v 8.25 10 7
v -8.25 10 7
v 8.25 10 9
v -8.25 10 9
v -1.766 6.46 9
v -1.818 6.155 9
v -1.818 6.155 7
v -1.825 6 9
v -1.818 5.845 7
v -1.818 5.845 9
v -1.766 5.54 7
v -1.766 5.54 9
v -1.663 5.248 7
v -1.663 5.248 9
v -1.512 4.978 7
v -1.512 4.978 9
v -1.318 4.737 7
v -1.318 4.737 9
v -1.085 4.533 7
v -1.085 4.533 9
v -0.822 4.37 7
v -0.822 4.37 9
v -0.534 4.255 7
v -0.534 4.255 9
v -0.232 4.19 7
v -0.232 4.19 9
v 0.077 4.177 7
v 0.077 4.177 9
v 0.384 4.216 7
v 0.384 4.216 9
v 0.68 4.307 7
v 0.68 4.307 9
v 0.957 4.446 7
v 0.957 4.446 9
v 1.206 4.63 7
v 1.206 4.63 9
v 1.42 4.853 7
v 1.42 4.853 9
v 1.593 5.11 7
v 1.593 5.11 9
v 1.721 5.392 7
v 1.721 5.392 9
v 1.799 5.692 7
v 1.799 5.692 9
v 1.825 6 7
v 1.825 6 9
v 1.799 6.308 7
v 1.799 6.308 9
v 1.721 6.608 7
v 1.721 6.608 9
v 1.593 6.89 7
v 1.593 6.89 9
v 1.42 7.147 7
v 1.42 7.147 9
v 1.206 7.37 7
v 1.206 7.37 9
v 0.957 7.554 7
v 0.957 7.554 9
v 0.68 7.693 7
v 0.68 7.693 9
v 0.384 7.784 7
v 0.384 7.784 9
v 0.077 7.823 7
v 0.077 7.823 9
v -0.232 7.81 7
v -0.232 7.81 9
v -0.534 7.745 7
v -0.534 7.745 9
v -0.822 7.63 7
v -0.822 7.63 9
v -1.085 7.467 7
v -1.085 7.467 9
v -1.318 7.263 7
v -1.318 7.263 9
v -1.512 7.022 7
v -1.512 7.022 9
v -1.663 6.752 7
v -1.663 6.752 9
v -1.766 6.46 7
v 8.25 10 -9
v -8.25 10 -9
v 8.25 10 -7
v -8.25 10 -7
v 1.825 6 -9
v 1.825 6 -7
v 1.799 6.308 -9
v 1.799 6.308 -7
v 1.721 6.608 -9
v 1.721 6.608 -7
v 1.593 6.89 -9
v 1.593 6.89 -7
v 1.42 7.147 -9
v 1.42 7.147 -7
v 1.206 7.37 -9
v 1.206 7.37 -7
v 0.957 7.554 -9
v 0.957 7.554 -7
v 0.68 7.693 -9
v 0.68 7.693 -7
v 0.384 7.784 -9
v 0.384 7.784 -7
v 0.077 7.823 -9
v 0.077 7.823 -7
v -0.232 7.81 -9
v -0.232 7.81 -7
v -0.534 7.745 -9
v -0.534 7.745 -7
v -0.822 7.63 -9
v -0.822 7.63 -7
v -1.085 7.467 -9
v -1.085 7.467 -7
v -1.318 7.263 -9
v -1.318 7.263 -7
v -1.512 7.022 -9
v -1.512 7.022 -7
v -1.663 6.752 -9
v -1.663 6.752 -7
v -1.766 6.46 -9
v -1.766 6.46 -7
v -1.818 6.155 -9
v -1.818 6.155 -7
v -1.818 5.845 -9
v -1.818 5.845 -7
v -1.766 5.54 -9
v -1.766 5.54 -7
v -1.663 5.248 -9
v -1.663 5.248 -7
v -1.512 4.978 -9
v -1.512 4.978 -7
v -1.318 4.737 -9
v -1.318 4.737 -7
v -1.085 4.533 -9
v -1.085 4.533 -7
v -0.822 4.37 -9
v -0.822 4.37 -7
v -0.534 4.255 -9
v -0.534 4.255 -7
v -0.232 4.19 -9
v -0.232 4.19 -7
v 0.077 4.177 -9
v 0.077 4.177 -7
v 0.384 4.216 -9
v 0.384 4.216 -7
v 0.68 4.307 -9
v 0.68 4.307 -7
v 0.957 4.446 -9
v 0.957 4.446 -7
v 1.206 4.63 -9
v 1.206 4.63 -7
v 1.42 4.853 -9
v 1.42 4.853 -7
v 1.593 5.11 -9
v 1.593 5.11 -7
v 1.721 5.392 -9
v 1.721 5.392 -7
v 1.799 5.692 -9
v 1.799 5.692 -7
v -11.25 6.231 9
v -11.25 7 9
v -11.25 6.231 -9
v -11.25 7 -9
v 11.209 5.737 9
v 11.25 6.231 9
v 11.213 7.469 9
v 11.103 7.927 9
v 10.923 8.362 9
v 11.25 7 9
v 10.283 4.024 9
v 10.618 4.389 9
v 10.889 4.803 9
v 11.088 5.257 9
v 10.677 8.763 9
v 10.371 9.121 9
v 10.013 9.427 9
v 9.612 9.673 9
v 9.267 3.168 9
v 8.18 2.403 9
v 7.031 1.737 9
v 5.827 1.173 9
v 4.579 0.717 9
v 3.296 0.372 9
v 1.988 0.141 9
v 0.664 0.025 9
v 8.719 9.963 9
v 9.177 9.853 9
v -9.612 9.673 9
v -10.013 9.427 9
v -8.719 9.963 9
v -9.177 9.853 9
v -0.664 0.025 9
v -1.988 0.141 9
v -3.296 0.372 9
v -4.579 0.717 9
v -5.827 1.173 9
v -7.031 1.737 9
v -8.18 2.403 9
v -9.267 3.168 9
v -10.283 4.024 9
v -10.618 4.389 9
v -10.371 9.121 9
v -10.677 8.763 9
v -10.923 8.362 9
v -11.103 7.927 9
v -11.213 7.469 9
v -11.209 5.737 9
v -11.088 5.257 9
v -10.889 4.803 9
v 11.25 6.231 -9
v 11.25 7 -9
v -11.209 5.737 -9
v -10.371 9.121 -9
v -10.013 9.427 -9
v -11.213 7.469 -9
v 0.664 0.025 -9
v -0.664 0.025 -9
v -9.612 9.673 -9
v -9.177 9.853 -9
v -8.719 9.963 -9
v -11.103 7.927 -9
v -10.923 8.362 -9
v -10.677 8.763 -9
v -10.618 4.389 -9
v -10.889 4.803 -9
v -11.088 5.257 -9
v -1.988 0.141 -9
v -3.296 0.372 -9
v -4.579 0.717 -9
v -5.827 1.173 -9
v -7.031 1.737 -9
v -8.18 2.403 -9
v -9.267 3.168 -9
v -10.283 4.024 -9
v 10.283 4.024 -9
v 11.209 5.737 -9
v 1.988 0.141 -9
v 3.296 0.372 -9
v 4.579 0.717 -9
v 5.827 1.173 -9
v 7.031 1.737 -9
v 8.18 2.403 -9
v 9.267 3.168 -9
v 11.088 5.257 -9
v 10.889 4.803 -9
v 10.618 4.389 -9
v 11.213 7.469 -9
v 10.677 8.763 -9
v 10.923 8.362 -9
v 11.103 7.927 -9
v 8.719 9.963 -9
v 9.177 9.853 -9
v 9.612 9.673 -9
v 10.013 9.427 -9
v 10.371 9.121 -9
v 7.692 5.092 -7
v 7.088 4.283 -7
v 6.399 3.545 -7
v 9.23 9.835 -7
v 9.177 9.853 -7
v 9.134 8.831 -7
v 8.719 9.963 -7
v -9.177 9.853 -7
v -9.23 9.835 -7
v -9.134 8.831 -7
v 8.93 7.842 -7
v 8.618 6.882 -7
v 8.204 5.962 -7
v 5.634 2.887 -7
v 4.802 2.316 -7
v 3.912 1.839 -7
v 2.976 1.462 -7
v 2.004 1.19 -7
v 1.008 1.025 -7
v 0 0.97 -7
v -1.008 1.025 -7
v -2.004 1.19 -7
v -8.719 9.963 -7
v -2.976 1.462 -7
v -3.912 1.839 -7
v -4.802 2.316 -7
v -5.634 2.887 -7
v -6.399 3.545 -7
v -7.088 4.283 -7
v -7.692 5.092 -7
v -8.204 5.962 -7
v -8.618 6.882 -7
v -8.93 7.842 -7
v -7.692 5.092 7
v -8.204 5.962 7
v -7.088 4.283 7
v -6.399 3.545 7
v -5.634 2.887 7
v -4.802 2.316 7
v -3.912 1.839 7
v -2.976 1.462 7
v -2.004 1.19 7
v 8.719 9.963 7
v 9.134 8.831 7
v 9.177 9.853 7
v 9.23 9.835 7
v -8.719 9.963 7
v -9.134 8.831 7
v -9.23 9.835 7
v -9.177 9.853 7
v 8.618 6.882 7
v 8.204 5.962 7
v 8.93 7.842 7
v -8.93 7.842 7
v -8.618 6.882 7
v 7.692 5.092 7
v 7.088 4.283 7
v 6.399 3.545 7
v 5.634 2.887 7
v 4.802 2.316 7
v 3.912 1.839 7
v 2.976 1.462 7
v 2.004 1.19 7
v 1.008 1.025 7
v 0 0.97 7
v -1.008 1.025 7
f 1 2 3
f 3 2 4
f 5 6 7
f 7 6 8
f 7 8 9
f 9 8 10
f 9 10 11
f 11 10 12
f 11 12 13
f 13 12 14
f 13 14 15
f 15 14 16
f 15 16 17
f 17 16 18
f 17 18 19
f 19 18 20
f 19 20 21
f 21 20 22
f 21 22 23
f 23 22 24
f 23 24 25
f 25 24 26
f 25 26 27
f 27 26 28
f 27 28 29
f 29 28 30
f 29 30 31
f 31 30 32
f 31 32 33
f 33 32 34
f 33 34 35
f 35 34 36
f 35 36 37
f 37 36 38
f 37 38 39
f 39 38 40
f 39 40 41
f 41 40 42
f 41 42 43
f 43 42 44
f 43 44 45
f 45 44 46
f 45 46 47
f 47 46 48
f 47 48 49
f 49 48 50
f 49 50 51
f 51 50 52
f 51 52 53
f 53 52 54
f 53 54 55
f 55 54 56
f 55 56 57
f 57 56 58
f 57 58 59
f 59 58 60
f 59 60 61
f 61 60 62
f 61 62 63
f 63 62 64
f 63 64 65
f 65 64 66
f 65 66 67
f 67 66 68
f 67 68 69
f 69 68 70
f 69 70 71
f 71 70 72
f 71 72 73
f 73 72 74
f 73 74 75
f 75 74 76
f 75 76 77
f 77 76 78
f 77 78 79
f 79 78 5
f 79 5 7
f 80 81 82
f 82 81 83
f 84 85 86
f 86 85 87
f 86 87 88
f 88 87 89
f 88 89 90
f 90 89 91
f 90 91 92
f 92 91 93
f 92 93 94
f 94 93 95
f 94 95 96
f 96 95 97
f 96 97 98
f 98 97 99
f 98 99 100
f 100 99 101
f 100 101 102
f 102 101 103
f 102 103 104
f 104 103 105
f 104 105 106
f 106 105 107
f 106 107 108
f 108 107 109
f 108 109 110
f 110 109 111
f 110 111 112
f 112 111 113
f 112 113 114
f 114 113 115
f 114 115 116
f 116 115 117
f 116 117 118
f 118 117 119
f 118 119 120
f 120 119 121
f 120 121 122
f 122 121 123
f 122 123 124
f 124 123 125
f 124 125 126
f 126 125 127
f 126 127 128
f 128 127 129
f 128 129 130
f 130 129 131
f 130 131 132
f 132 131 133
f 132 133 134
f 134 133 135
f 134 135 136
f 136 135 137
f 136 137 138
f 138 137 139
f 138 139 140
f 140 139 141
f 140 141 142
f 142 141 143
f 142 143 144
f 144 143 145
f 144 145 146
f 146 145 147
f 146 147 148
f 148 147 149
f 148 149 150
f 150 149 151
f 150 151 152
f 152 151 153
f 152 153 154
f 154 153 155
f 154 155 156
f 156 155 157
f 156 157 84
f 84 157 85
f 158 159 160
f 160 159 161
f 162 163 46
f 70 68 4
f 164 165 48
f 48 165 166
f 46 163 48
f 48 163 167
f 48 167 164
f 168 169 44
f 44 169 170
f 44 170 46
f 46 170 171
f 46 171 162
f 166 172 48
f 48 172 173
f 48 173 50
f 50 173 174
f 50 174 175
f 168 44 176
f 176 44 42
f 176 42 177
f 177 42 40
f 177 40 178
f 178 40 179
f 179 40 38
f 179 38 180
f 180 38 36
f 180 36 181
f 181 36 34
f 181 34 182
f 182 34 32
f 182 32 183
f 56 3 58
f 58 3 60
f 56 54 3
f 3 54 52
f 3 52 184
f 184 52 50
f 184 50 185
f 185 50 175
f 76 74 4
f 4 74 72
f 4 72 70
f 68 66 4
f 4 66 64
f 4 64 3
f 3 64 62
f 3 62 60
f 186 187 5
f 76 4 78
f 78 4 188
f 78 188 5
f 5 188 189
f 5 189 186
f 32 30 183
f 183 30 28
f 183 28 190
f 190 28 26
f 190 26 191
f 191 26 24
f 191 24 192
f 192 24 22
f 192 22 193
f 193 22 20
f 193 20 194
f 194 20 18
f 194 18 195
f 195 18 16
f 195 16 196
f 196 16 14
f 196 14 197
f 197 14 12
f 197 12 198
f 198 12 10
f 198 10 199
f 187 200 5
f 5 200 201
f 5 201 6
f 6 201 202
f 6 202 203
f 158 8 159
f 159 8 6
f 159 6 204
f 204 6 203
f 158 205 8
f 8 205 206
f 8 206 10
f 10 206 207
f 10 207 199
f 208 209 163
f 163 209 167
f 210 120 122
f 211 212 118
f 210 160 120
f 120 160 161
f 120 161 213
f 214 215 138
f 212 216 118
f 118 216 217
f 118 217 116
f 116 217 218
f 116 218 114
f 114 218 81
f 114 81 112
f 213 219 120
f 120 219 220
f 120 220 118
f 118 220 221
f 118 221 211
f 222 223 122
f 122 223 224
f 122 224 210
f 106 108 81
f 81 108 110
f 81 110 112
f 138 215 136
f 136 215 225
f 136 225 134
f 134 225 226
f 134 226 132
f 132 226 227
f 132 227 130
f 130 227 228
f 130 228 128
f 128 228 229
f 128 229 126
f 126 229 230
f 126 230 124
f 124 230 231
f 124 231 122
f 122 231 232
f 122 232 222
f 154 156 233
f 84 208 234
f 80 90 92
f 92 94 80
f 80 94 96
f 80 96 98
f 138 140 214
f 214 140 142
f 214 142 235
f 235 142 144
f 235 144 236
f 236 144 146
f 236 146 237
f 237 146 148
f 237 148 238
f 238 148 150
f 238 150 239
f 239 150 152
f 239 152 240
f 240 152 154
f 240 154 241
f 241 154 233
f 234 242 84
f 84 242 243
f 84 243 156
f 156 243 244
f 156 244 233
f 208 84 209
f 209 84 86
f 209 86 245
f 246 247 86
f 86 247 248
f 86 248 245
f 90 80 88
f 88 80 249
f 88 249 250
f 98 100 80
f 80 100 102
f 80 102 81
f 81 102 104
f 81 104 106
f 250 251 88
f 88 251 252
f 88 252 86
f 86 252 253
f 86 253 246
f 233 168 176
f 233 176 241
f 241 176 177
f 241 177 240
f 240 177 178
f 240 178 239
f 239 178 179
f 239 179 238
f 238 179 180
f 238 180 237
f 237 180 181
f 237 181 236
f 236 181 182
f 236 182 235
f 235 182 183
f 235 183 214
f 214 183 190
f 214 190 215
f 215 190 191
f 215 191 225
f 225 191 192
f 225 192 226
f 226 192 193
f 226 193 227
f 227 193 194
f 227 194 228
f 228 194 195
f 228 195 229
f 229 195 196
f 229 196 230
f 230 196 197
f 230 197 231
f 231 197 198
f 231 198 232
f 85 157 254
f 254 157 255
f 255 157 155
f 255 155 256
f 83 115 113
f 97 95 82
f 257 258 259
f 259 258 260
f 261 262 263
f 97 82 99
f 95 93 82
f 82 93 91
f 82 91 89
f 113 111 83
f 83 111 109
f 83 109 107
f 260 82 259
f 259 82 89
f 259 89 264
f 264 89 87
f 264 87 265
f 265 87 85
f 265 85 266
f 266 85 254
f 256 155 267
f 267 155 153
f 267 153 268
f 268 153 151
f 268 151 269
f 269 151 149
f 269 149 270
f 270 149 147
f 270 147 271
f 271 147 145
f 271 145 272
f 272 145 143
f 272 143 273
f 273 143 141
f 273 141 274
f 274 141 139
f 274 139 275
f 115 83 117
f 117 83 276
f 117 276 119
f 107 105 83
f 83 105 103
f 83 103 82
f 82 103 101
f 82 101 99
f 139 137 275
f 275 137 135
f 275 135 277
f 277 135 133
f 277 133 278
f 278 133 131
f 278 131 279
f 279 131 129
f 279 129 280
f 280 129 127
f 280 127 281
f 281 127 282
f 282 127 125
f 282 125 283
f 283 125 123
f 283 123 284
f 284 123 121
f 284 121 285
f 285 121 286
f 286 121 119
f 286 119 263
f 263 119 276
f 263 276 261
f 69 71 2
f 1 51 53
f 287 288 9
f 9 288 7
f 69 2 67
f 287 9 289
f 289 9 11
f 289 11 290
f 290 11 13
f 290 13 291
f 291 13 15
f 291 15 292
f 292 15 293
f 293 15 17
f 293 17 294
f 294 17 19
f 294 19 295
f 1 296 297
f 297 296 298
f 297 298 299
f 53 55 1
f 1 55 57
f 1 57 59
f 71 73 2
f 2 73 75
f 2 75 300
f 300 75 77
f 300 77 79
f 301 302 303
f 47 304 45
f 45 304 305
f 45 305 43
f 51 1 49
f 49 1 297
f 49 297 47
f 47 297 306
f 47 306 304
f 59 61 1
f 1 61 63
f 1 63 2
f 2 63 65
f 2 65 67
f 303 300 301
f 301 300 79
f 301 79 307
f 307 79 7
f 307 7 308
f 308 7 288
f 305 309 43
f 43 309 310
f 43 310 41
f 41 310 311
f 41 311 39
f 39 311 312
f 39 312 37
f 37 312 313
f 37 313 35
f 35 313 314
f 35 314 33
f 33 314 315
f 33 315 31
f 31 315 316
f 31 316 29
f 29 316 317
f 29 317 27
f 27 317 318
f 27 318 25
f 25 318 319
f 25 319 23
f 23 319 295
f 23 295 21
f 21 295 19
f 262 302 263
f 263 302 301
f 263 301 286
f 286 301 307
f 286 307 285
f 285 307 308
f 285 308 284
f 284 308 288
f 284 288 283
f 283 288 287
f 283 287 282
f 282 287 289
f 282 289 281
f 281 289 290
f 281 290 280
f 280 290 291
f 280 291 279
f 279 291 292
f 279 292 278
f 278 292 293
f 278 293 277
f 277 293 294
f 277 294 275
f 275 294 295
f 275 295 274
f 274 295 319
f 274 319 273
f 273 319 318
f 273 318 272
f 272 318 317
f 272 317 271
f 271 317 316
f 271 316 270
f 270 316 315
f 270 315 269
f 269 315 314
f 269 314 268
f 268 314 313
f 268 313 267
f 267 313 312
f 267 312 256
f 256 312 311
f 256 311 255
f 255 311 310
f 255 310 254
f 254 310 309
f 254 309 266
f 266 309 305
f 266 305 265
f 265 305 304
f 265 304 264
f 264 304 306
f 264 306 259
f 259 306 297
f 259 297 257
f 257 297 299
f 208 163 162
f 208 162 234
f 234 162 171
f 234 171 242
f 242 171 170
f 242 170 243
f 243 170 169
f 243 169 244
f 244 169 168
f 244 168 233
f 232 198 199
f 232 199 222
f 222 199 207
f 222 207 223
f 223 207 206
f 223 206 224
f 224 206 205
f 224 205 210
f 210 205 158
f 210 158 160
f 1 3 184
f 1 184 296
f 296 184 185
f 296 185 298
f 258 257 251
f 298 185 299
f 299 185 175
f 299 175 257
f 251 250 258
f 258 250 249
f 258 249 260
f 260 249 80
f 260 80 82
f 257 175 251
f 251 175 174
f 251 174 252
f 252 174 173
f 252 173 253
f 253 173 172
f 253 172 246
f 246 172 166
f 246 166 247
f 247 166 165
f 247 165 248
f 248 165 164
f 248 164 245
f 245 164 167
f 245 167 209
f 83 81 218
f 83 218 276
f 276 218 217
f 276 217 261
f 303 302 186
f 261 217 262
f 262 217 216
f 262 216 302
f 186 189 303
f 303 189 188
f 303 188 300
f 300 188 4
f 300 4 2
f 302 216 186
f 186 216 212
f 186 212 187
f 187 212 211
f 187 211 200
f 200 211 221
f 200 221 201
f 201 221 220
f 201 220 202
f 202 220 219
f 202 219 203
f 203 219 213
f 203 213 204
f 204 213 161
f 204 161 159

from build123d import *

# Parameters (mm, degrees)
SKETCH1_W               = 22.5
SKETCH1_H               = 18
BOSS_EXTRUDE1_DEPTH     = 10
CUT_EXTRUDE1_DEPTH      = 24.464068275
CUT_EXTRUDE1_DEPTH_BACK = 24.464068275
SKETCH2_R               = 1.75
CUT_EXTRUDE2_DEPTH      = 14
CUT_EXTRUDE3_REACH      = 19.532
SKETCH4_W               = 11.529065942
SKETCH4_H               = 14
FILLET1_R               = 3


with BuildPart() as part:
    # Sketch1 → Boss-Extrude1 (new body)
    with BuildSketch(Plane(origin=(0, 0, 0), x_dir=(1, 0, 0), z_dir=(0, 1, 0))):
        Rectangle(SKETCH1_W, SKETCH1_H)
    extrude(amount=BOSS_EXTRUDE1_DEPTH)

    # Sketch2 → Cut-Extrude1 (cut, two sides: drawn at the far end of the back side and taken through both)
    with BuildSketch(Plane.XY.offset(9).offset(-CUT_EXTRUDE1_DEPTH_BACK)):
        with Locations((0, 6)):
            Circle(SKETCH2_R)
        with BuildLine():
            Line((-11.25, 5), (-11.25, 0))
            Line((-11.25, 0), (11.25, 0))
            Line((11.25, 0), (11.25, 5))
            ThreePointArc((11.25, 5), (0, 0.01), (-11.25, 5))
        make_face()
    extrude(amount=CUT_EXTRUDE1_DEPTH + CUT_EXTRUDE1_DEPTH_BACK, mode=Mode.SUBTRACT)

    # Sketch3 → Cut-Extrude2 (cut)
    with BuildSketch(Plane.XY.offset(7)):
        with BuildLine():
            ThreePointArc((-9.233945582, 9.952114837), (0, 0.969656164), (9.233945582, 9.952114837))
            ThreePointArc((9.233945582, 9.952114837), (7.547885163, 11.733945582), (5.766054418, 10.047885163))
            ThreePointArc((5.766054418, 10.047885163), (0, 4.438869486), (-5.766054418, 10.047885163))
            ThreePointArc((-5.766054418, 10.047885163), (-7.547885163, 11.733945582), (-9.233945582, 9.952114837))
        make_face()
    extrude(amount=-CUT_EXTRUDE2_DEPTH, mode=Mode.SUBTRACT)

    # Sketch4 → Cut-Extrude3 (cut, up to next)
    with BuildSketch(Plane(origin=(0, 10, 0), x_dir=(1, 0, 0), z_dir=(0, 1, 0)), mode=Mode.PRIVATE) as cut_extrude3_sk1:
        Rectangle(SKETCH4_W, SKETCH4_H)
    cut_extrude3_tool1 = extrude(cut_extrude3_sk1.sketch, amount=-CUT_EXTRUDE3_REACH, mode=Mode.PRIVATE) & part.part
    add(cut_extrude3_tool1.solids().sort_by_distance((0, 10, 0))[0], mode=Mode.SUBTRACT)

    # Fillet1
    # the kernel refuses this fillet: 3 mm, written as the material it takes off along each edge
    with BuildSketch(Plane(origin=(11.25, 5, 12.435069568), x_dir=(0, 1, 0), z_dir=(0, 0, -1))) as fillet1_piece_1:
        with BuildLine():
            CenterArc((1.230754269, -3), FILLET1_R, 90, 47.349204062)
            ThreePointArc((-0.975735859, -0.967415115), (-0.498821765, -0.472659508), (0, 0))
            Line((0, 0), (1.230754269, 0))
        make_face()
    extrude(amount=24.870139136, mode=Mode.SUBTRACT)
    with BuildSketch(Plane(origin=(-11.25, 5, 12.435069568), x_dir=(0, 1, 0), z_dir=(0, 0, -1))) as fillet1_piece_2:
        with BuildLine():
            CenterArc((1.230754269, 3), FILLET1_R, 222.650795938, 47.349204062)
            ThreePointArc((-0.975735859, 0.967415115), (-0.498821765, 0.472659508), (0, 0))
            Line((0, 0), (1.230754269, 0))
        make_face()
    extrude(amount=24.870139136, mode=Mode.SUBTRACT)
    with BuildSketch(Plane(origin=(11.25, 10, -16.5), x_dir=(-1, 0, 0), z_dir=(0, 0, 1))) as fillet1_piece_3:
        with BuildLine():
            CenterArc((FILLET1_R, FILLET1_R), FILLET1_R, 180, 90)
            Line((0, FILLET1_R), (0, 0))
            Line((0, 0), (FILLET1_R, 0))
        make_face()
    extrude(amount=33, mode=Mode.SUBTRACT)
    with BuildSketch(Plane(origin=(-11.25, 10, 16.5), x_dir=(0, -1, 0), z_dir=(0, 0, -1))) as fillet1_piece_4:
        with BuildLine():
            CenterArc((FILLET1_R, -FILLET1_R), FILLET1_R, 90, 90)
            Line((0, -FILLET1_R), (0, 0))
            Line((0, 0), (FILLET1_R, 0))
        make_face()
    extrude(amount=33, mode=Mode.SUBTRACT)


solid = part.part
